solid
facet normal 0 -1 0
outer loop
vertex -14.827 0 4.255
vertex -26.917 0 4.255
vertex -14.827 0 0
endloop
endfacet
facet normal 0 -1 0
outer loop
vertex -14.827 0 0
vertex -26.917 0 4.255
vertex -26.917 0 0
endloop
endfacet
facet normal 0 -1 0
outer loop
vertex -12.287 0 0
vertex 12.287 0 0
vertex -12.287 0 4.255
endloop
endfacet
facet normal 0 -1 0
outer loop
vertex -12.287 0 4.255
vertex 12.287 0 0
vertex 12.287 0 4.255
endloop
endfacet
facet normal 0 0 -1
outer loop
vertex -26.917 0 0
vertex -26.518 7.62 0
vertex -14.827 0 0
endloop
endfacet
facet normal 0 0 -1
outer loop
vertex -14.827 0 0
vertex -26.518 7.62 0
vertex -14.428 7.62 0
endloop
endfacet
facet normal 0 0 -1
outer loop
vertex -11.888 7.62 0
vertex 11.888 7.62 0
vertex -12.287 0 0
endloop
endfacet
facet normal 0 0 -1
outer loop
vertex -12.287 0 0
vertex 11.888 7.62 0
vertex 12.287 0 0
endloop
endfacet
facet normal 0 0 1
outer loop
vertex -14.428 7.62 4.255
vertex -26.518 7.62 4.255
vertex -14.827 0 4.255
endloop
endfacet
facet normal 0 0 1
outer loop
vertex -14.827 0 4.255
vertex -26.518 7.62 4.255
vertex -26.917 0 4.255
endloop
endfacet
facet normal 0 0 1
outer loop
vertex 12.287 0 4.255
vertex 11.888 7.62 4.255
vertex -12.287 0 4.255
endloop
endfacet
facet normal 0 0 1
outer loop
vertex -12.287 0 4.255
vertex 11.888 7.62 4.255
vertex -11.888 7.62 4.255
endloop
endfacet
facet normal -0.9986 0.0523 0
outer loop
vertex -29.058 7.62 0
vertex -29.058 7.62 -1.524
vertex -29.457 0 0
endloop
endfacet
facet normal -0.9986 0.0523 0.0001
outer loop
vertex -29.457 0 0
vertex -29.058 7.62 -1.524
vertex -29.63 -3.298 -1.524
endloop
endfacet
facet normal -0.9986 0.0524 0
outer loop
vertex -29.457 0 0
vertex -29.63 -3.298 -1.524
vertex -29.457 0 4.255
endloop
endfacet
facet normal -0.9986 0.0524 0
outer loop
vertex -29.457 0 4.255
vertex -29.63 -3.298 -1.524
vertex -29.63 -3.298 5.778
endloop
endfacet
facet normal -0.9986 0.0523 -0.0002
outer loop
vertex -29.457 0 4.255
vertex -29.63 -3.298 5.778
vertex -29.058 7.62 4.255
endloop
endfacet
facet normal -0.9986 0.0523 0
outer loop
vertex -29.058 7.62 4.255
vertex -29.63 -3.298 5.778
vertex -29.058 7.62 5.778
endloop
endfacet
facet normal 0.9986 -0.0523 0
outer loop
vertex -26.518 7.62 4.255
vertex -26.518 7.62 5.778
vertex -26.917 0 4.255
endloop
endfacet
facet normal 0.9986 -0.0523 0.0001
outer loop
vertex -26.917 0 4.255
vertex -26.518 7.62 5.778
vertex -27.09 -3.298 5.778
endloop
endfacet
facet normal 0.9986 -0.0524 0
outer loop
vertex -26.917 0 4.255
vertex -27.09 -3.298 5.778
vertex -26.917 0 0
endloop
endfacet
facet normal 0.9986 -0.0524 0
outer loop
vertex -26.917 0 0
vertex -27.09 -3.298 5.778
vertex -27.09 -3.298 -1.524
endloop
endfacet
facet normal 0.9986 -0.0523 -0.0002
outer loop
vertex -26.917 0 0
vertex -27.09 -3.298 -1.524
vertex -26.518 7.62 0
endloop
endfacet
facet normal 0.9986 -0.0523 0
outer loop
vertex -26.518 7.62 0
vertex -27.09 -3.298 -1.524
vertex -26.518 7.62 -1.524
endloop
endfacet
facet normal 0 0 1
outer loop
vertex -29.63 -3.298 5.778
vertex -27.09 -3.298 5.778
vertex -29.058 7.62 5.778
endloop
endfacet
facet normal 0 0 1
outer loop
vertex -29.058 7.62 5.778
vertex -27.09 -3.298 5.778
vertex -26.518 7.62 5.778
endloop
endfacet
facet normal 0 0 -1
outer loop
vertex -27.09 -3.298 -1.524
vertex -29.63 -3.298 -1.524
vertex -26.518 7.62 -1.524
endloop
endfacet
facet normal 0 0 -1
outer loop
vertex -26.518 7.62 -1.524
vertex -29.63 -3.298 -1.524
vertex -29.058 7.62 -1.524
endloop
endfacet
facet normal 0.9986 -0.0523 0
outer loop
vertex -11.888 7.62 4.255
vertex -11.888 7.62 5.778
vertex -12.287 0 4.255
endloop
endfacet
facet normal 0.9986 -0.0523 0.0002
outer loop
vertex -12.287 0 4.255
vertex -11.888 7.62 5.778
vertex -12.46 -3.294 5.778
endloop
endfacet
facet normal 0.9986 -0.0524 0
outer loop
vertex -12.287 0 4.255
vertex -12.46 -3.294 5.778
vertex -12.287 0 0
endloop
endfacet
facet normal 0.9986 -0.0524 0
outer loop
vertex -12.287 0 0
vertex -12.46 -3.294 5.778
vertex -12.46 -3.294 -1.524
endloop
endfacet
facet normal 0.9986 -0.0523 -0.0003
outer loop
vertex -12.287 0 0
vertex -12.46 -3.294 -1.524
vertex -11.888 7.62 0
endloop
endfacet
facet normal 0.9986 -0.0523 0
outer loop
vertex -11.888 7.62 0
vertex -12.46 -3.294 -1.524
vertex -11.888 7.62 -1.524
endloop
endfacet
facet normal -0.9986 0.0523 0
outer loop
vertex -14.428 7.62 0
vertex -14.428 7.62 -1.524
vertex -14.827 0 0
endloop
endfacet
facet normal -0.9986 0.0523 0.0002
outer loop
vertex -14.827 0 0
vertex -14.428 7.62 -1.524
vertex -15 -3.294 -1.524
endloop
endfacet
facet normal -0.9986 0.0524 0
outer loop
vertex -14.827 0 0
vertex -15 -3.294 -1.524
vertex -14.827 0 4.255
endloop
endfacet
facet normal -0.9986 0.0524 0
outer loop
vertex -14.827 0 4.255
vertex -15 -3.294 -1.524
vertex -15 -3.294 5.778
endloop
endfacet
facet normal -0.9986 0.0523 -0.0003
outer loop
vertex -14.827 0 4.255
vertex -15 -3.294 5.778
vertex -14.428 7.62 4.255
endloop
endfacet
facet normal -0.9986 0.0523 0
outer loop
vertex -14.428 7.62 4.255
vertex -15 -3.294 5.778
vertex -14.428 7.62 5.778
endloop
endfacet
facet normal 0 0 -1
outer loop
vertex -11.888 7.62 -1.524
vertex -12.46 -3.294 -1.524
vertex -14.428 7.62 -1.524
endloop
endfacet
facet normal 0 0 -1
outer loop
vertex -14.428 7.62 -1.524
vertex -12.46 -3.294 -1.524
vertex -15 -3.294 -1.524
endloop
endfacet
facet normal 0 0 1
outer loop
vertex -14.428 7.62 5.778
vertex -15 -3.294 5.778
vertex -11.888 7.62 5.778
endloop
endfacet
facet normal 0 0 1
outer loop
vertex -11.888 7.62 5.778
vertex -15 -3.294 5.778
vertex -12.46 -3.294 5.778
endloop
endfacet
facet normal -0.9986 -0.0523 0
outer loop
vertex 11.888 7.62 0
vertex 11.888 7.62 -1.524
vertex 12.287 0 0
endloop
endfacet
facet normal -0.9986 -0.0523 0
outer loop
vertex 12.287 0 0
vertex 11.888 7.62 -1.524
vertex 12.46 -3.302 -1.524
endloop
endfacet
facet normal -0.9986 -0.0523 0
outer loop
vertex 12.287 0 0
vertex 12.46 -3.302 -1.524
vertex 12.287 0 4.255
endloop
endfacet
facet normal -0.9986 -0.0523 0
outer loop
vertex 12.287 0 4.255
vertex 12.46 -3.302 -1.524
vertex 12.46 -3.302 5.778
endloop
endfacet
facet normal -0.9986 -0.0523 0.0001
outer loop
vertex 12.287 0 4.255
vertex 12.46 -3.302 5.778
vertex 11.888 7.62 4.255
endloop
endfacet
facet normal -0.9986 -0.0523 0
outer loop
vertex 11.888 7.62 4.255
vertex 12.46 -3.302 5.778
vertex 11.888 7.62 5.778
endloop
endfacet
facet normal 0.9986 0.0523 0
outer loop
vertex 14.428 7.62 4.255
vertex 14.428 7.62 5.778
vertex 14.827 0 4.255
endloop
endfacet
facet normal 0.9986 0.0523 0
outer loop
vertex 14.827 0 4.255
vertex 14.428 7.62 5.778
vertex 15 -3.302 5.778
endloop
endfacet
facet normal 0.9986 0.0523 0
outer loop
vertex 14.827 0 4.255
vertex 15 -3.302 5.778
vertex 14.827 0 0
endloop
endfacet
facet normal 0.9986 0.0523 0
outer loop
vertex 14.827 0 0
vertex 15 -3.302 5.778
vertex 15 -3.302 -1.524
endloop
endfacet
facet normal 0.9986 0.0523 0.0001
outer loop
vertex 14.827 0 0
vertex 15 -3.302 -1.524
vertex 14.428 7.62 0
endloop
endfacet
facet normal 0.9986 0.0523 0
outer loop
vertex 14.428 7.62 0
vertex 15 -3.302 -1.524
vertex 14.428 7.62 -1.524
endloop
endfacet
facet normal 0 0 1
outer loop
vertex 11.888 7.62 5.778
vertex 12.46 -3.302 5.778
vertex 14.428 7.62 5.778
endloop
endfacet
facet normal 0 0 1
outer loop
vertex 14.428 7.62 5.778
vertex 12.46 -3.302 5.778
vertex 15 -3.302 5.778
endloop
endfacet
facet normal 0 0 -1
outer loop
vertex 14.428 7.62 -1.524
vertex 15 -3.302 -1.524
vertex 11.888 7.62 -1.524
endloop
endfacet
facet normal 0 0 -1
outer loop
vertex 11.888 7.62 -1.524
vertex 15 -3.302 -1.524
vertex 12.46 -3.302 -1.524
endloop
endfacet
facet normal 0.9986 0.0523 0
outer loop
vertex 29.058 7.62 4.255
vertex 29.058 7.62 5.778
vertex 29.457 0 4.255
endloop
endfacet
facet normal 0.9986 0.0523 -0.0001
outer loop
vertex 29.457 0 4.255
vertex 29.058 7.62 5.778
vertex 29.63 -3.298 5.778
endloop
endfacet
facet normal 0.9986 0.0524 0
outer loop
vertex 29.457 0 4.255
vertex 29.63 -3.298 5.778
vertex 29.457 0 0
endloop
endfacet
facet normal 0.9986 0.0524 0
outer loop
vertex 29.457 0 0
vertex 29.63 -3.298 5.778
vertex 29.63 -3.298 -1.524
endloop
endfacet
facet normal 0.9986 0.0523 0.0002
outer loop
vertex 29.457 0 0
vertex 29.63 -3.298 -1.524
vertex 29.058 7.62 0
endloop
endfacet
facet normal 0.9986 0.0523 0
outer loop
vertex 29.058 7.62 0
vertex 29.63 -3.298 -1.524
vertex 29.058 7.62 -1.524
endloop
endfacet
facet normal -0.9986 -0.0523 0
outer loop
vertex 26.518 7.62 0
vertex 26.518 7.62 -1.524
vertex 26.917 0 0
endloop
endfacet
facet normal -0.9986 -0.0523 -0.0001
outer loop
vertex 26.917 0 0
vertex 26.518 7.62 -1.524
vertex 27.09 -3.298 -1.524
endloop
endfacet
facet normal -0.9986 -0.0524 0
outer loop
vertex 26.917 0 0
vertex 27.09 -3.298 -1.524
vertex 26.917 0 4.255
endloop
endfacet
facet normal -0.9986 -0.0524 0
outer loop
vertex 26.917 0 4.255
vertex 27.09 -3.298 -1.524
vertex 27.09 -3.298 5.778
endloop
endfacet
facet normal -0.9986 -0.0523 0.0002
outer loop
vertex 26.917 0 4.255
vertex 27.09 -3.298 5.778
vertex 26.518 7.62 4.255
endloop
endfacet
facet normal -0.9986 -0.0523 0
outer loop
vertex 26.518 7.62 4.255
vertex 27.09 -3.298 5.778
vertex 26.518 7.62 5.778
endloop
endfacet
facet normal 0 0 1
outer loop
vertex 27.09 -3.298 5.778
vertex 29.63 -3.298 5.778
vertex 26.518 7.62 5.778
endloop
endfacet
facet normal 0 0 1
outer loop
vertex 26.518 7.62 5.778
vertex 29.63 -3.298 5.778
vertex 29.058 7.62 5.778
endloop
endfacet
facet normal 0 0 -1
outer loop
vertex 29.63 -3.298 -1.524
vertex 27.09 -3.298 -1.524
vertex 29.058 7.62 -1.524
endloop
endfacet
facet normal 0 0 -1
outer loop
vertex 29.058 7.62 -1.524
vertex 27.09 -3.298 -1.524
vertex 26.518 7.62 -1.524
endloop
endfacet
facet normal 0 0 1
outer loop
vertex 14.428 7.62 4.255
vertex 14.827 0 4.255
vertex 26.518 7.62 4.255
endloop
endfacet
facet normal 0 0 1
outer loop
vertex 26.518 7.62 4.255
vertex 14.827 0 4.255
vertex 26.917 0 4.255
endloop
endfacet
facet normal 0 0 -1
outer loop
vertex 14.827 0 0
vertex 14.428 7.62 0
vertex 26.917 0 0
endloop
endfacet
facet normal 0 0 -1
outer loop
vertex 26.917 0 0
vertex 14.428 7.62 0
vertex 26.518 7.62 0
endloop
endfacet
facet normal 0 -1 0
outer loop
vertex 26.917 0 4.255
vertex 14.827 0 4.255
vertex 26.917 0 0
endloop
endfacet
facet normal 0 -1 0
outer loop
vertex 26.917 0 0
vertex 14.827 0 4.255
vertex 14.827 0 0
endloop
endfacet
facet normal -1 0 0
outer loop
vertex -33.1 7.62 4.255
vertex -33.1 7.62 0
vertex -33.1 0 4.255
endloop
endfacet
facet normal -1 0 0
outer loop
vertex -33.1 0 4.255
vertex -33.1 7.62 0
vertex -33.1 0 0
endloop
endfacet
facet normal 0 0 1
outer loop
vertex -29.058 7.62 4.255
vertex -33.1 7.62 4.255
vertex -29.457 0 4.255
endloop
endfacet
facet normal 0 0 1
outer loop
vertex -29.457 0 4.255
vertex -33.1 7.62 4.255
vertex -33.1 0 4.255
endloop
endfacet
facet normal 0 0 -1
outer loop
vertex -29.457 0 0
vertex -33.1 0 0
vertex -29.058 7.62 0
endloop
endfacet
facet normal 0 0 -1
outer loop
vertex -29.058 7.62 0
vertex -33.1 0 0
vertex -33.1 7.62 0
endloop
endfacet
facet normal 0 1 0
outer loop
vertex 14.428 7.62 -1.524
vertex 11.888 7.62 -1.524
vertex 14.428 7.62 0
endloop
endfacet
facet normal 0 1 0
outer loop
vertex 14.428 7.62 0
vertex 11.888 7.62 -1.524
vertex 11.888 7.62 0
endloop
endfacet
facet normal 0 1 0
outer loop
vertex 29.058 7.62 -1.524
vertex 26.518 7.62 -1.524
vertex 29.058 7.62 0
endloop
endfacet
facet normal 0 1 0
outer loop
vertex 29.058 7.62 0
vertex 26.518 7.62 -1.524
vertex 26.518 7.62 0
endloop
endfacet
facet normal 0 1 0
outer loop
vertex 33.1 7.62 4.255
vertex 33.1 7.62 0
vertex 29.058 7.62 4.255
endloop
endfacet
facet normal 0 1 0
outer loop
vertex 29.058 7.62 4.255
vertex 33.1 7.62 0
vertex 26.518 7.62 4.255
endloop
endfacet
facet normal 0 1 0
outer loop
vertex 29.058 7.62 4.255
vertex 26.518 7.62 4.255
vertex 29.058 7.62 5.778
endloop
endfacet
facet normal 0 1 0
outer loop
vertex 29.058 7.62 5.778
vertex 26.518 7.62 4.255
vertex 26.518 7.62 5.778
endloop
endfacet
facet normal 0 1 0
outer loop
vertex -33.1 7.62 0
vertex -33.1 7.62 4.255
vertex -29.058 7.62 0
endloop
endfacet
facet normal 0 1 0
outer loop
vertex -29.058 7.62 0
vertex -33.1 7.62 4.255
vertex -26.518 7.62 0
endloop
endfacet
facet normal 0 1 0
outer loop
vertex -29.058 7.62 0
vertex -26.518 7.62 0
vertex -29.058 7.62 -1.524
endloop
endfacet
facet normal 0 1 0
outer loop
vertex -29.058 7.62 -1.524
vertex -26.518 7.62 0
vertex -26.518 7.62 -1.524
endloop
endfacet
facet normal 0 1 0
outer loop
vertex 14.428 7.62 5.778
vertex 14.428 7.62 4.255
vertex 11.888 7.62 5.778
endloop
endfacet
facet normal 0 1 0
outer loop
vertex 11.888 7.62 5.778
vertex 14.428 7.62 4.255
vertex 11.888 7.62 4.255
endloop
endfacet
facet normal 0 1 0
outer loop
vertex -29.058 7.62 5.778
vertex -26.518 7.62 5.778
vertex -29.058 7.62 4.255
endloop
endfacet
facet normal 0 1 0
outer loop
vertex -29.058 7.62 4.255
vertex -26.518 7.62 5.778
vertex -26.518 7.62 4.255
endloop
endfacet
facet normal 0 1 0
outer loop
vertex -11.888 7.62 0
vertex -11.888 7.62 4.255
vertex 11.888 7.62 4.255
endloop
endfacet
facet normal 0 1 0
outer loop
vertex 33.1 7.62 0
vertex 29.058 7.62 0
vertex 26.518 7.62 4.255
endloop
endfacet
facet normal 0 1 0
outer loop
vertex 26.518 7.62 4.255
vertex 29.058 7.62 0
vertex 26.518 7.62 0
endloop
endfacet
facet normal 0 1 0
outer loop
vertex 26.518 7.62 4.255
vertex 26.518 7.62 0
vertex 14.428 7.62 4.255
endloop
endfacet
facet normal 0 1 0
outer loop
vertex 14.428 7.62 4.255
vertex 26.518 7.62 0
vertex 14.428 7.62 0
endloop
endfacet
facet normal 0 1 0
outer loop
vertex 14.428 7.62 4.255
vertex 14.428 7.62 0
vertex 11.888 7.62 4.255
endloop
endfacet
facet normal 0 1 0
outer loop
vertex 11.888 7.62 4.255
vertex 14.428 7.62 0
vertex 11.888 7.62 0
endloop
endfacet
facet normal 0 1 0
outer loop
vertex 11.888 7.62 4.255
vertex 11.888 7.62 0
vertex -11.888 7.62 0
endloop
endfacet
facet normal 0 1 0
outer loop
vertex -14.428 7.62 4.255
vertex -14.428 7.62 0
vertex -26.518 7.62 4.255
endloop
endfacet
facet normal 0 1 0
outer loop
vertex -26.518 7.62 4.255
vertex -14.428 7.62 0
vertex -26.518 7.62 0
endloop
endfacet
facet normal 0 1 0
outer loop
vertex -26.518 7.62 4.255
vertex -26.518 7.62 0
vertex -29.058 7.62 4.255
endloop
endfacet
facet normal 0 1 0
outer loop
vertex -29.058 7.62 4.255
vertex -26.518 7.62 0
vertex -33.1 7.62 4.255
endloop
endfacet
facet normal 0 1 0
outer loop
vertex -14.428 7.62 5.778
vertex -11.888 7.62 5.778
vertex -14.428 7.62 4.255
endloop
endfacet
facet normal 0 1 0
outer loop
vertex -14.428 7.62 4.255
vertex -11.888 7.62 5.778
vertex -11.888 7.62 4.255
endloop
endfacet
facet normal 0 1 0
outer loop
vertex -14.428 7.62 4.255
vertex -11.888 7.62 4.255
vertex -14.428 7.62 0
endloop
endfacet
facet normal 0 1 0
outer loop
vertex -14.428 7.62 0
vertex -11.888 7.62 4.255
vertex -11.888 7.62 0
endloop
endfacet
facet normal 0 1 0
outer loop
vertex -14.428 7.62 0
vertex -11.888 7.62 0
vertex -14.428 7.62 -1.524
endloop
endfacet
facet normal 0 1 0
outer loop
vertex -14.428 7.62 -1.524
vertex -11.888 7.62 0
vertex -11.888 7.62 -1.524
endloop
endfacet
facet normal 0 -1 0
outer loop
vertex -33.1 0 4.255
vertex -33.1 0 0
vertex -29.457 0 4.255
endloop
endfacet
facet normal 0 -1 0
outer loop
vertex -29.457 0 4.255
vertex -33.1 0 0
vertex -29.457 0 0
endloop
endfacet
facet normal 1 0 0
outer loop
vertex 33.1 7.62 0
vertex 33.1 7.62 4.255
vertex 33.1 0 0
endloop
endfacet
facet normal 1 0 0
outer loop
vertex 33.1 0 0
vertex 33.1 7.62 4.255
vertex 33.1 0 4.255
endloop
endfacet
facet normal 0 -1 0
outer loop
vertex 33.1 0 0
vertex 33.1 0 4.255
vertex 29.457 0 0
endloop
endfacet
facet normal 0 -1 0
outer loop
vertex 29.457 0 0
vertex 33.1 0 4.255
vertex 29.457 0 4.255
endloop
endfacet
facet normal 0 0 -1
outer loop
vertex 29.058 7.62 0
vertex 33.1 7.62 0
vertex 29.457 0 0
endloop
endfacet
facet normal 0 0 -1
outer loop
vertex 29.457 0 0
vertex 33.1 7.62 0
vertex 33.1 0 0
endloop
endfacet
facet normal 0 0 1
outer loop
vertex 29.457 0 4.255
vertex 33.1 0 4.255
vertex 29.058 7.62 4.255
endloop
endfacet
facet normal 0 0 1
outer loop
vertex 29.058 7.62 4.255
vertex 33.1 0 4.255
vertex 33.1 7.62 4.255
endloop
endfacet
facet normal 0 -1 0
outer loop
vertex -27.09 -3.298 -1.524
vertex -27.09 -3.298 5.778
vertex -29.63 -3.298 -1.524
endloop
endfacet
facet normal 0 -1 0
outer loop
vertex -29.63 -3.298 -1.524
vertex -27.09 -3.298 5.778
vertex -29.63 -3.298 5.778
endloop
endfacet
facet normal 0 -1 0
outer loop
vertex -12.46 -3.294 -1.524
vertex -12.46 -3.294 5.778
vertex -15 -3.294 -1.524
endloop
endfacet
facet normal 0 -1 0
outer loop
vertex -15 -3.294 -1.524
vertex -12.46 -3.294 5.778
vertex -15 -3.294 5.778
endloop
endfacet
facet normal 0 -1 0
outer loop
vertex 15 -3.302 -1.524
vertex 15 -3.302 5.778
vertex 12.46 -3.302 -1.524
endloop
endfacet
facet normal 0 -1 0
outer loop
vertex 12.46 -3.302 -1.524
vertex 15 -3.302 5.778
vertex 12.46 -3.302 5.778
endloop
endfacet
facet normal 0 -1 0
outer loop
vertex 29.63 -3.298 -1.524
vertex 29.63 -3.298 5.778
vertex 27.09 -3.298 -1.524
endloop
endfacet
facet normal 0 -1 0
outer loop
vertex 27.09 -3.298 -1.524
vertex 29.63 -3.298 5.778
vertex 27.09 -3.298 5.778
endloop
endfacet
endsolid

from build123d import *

# Parameters (mm, degrees)
SKETCH1_W           = 66.20002
SKETCH1_H           = 4.2545
BOSS_EXTRUDE1_DEPTH = 7.62
SKETCH3_W           = 7.3025
SKETCH3_H           = 12.7
BOSS_EXTRUDE2_DEPTH = 2.54
SKETCH7_W           = 7.3025
SKETCH7_H           = 12.7
BOSS_EXTRUDE3_DEPTH = 2.54
SKETCH8_W           = 7.3025
SKETCH8_H           = 12.7
BOSS_EXTRUDE4_DEPTH = 2.54
SKETCH9_W           = 7.3025
SKETCH9_H           = 12.7
BOSS_EXTRUDE5_DEPTH = 2.54
SKETCH10_W          = 66.20002
SKETCH10_H          = 20.74309717
CUT_EXTRUDE1_DEPTH  = 8.709364346
SKETCH11_W          = 2.54
SKETCH11_H          = 7.3025
BOSS_EXTRUDE6_DEPTH = 2.978912
SKETCH12_W          = 2.54
SKETCH12_H          = 7.3025
BOSS_EXTRUDE7_DEPTH = 5.94868
SKETCH13_W          = 2.54
SKETCH13_H          = 7.3025
BOSS_EXTRUDE8_DEPTH = 0.074168
SKETCH14_W          = 2.54
SKETCH14_H          = 7.3025
BOSS_EXTRUDE9_DEPTH = 2.978912


with BuildPart() as part:
    # Sketch1 → Boss-Extrude1 (new body)
    with BuildSketch(Plane(origin=(0, 0, 0), x_dir=(1, 0, 0), z_dir=(0, 1, 0))):
        with Locations((0, -2.12725)):
            Rectangle(SKETCH1_W, SKETCH1_H)
    extrude(amount=BOSS_EXTRUDE1_DEPTH)

    # Sketch3 → Boss-Extrude2 (add, along a direction that is not the sketch's normal)
    with BuildSketch(Plane(origin=(-26.843667844, 1.40681702, 0), x_dir=(0, 0, -1), z_dir=(-0.998629535, 0.052335956, 0))):
        with Locations((-2.12725, -4.617679325)):
            Rectangle(SKETCH3_W, SKETCH3_H)
    extrude(amount=BOSS_EXTRUDE2_DEPTH, dir=(-1, 0, 0))

    # Sketch7 → Boss-Extrude3 (add, along a direction that is not the sketch's normal)
    with BuildSketch(Plane(origin=(-14.786384082, 0.774921553, 0), x_dir=(0, 0, -1), z_dir=(-0.998629535, 0.052335956, 0))):
        with Locations((-2.12725, -8.224416524)):
            Rectangle(SKETCH7_W, SKETCH7_H)
    extrude(amount=-BOSS_EXTRUDE3_DEPTH, dir=(-1, 0, 0))

    # Sketch8 → Boss-Extrude4 (add, along a direction that is not the sketch's normal)
    with BuildSketch(Plane(origin=(14.786384082, 0.774921553, 0), x_dir=(0, 0, -1), z_dir=(0.998629535, 0.052335956, 0))):
        with Locations((-2.12725, 2.341864986)):
            Rectangle(SKETCH8_W, SKETCH8_H)
    extrude(amount=-BOSS_EXTRUDE4_DEPTH, dir=(1, 0, 0))

    # Sketch9 → Boss-Extrude5 (add, along a direction that is not the sketch's normal)
    with BuildSketch(Plane(origin=(26.843667844, 1.40681702, 0), x_dir=(0, 0, -1), z_dir=(0.998629535, 0.052335956, 0))):
        with Locations((-2.12725, 4.617679325)):
            Rectangle(SKETCH9_W, SKETCH9_H)
    extrude(amount=BOSS_EXTRUDE5_DEPTH, dir=(1, 0, 0))

    # Sketch10 → Cut-Extrude1 (cut, through all)
    with BuildSketch(Plane(origin=(0, 7.62, 0), x_dir=(1, 0, 0), z_dir=(0, 1, 0))):
        with Locations((0, -1.111264459)):
            Rectangle(SKETCH10_W, SKETCH10_H)
    extrude(amount=CUT_EXTRUDE1_DEPTH, mode=Mode.SUBTRACT)

    # Sketch11 → Boss-Extrude6 (add, along a direction that is not the sketch's normal)
    with BuildSketch(Plane(origin=(0, -0.32312957, 0), x_dir=(-1, 0, 0), z_dir=(0, -1, 0))):
        with Locations((28.204330503, -2.12725)):
            Rectangle(SKETCH11_W, SKETCH11_H)
    extrude(amount=BOSS_EXTRUDE6_DEPTH, dir=(-0.052335956, -0.998629535, 0))

    # Sketch12 → Boss-Extrude7 (add, along a direction that is not the sketch's normal)
    with BuildSketch(Plane.XZ.offset(-2.646769255)):
        with Locations((-13.418284701, 2.12725)):
            Rectangle(SKETCH12_W, SKETCH12_H)
    extrude(amount=BOSS_EXTRUDE7_DEPTH, dir=(-0.052335956, -0.998629535, 0))

    # Sketch13 → Boss-Extrude8 (add, along a direction that is not the sketch's normal)
    with BuildSketch(Plane.XZ.offset(3.227720451)):
        with Locations((13.726153661, 2.12725)):
            Rectangle(SKETCH13_W, SKETCH13_H)
    extrude(amount=BOSS_EXTRUDE8_DEPTH, dir=(0.052335956, -0.998629535, 0))

    # Sketch14 → Boss-Extrude9 (add, along a direction that is not the sketch's normal)
    with BuildSketch(Plane.XZ.offset(0.32312957)):
        with Locations((28.204330503, 2.12725)):
            Rectangle(SKETCH14_W, SKETCH14_H)
    extrude(amount=BOSS_EXTRUDE9_DEPTH, dir=(0.052335956, -0.998629535, 0))


solid = part.part
